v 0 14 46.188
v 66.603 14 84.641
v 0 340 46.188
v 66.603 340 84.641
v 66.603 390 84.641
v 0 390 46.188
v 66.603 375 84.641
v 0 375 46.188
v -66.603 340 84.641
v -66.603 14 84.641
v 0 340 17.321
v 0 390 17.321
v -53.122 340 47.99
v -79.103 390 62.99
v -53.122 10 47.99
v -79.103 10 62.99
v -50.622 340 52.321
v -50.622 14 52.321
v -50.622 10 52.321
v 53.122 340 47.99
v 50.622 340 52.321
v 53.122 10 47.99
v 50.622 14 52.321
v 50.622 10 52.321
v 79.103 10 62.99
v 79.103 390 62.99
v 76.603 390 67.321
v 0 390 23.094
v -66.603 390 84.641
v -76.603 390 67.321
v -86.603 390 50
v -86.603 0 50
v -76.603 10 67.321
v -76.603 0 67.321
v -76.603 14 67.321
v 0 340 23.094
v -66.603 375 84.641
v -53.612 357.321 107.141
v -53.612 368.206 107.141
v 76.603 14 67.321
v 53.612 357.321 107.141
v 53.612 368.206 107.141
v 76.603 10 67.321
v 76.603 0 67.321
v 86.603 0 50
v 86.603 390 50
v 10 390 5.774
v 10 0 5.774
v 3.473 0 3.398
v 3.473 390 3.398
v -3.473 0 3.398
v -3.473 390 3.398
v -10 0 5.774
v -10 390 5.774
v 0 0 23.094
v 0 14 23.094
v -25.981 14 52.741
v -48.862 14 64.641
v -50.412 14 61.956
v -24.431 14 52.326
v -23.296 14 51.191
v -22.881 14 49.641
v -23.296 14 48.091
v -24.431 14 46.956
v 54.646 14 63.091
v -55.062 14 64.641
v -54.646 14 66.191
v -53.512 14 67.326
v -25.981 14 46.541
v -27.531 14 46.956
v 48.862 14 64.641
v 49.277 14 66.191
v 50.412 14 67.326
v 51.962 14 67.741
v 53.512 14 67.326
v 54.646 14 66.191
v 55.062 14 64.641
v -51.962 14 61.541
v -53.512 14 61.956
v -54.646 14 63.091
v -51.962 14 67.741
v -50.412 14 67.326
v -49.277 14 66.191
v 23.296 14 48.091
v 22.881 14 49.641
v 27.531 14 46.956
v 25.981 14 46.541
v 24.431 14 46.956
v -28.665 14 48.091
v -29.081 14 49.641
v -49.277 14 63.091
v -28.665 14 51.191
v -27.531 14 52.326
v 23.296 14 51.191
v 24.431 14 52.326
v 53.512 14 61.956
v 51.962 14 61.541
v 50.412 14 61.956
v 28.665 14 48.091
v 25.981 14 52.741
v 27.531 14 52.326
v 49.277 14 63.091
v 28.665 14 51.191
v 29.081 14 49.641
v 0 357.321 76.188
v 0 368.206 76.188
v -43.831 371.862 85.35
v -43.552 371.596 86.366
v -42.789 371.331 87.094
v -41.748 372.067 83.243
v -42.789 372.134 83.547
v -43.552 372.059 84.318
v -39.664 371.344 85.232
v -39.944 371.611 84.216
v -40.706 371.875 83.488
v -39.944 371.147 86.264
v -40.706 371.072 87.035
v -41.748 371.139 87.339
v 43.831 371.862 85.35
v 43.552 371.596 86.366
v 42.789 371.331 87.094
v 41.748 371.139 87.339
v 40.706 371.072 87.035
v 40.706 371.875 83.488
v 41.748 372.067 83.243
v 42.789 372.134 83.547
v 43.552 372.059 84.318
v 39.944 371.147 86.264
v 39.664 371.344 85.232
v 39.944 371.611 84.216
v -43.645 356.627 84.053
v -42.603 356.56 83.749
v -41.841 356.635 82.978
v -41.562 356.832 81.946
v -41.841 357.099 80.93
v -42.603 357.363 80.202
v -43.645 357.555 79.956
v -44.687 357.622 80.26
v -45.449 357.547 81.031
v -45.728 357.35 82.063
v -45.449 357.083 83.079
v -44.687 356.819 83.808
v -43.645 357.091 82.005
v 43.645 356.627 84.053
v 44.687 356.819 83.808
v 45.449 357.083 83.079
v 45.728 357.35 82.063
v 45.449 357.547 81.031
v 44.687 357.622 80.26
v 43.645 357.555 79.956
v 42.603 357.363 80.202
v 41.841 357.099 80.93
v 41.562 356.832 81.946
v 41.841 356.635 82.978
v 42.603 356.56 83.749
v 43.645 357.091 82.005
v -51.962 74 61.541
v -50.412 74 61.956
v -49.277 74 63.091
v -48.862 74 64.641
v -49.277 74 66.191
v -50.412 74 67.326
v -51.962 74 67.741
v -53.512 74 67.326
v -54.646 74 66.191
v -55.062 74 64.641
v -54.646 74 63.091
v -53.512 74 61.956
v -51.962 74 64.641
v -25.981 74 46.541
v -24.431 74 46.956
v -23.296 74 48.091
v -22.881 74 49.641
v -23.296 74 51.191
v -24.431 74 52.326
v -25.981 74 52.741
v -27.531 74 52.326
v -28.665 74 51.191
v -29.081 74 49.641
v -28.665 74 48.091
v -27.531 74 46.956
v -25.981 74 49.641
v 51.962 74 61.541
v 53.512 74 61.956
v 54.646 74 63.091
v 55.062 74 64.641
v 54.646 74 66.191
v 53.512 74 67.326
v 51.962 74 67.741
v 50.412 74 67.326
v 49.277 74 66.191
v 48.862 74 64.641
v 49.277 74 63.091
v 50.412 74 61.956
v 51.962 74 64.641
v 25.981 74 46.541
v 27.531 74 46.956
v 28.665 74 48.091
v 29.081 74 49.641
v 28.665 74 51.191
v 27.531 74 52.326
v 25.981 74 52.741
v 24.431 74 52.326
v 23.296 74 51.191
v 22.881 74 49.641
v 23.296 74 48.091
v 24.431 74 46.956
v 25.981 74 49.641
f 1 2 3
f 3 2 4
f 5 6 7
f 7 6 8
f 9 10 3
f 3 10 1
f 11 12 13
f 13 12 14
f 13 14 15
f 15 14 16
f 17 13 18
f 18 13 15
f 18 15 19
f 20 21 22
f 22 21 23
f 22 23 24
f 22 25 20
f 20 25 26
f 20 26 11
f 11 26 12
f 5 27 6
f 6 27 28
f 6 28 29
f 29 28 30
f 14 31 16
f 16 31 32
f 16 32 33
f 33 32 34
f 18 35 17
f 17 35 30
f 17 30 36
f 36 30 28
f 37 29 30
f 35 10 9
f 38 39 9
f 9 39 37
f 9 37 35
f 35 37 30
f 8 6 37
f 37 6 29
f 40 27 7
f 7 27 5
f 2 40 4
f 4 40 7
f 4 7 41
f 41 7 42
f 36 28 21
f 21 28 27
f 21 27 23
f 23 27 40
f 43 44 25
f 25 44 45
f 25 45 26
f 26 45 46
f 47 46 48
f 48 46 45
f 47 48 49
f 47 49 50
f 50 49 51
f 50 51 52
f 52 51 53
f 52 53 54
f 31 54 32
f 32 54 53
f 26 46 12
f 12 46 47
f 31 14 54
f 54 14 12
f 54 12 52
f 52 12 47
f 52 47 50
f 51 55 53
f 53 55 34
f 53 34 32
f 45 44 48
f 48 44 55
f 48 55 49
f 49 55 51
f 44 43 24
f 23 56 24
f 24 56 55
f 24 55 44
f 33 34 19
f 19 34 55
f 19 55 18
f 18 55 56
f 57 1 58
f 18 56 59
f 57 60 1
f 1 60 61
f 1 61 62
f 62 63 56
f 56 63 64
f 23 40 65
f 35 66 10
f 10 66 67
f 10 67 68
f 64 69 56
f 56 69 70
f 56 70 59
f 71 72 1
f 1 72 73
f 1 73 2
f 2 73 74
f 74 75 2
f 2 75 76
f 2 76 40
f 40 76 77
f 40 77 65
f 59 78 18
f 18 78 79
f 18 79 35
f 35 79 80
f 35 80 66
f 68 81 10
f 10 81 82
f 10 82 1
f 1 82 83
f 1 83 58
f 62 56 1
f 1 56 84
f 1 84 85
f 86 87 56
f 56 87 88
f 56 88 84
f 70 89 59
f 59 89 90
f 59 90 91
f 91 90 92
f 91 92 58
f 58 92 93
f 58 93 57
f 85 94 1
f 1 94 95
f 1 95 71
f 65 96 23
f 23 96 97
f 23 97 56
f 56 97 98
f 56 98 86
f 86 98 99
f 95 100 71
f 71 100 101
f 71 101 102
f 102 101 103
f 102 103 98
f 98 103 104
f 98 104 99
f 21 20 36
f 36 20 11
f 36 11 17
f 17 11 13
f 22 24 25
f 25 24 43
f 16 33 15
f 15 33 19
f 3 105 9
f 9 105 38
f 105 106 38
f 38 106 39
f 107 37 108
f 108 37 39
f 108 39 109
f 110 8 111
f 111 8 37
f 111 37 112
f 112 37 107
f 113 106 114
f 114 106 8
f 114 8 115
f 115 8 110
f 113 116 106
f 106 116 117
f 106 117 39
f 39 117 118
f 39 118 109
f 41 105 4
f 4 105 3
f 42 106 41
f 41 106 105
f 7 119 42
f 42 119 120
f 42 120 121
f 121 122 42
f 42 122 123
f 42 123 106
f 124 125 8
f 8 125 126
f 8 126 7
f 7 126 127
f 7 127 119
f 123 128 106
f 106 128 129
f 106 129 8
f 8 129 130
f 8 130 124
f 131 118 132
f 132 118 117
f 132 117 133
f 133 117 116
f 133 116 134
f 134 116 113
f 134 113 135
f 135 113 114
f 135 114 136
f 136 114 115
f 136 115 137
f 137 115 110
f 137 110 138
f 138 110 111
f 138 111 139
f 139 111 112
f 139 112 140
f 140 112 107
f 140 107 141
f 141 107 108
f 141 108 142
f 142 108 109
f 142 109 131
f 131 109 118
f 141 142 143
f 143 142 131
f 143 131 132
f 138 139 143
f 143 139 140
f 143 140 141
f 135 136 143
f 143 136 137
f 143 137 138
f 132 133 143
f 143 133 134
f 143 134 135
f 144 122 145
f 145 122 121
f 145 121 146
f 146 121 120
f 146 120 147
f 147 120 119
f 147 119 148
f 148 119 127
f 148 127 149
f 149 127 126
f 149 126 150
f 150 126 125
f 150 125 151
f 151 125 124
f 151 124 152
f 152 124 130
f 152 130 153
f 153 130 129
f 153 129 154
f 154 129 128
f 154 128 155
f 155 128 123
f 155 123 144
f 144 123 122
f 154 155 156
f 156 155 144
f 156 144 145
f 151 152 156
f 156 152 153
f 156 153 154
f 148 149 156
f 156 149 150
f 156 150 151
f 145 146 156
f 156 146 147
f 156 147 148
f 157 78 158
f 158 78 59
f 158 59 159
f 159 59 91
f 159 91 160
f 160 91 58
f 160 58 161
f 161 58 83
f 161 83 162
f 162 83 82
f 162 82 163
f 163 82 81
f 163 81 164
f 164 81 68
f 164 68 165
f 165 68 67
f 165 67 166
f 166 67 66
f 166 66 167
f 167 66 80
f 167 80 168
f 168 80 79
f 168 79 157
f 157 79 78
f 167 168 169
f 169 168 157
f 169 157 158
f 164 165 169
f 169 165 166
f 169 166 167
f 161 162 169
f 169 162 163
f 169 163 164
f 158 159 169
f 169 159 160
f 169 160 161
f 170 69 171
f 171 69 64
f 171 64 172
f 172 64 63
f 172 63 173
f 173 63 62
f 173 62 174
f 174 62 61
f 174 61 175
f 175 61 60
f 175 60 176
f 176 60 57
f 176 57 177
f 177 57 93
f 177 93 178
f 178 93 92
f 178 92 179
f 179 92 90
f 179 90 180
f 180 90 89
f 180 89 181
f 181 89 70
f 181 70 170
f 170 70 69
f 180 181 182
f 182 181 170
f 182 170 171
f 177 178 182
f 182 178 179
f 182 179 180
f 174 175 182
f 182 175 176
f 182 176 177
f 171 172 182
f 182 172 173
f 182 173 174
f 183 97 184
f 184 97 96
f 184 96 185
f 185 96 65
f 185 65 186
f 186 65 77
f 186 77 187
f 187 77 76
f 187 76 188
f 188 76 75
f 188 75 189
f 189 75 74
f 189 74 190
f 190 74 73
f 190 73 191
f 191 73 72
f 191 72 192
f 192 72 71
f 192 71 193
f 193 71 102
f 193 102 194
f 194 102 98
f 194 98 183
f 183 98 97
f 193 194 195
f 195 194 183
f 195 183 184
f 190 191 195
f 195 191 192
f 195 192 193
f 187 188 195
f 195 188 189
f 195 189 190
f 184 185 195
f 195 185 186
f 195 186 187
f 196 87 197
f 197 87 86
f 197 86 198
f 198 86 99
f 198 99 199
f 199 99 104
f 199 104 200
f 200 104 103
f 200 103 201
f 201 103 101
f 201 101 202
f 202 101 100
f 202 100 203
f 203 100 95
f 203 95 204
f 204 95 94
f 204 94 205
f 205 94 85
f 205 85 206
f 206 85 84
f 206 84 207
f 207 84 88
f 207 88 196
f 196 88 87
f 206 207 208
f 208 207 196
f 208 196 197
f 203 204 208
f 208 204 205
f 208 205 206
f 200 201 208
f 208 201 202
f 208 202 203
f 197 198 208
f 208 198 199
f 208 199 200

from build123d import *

# Parameters (mm, degrees)
BOSS_EXTRUDE1_DEPTH = 390
CUT_EXTRUDE2_DEPTH  = 14
CUT_EXTRUDE3_DEPTH  = 50
BOSS_EXTRUDE2_DEPTH = 10
BOSS_EXTRUDE3_REACH = 473.852
BOSS_EXTRUDE4_REACH = 479.913
SKETCH22_R          = 2.1
CUT_EXTRUDE4_DEPTH  = 15
SKETCH23_R          = 3.1
CUT_EXTRUDE5_DEPTH  = 60


with BuildPart() as part:
    # Sketch1 → Boss-Extrude1 (new body)
    with BuildSketch(Plane(origin=(0, 0, 0), x_dir=(1, 0, 0), z_dir=(0, 1, 0))):
        with BuildLine():
            Line((-10, -5.773502692), (-86.602540378, -50))
            Line((-86.602540378, -50), (-79.102540378, -62.990381057))
            Line((-79.102540378, -62.990381057), (-53.121778265, -47.990381057))
            Line((-53.121778265, -47.990381057), (-50.621778265, -52.320508076))
            Line((-50.621778265, -52.320508076), (-76.602540378, -67.320508076))
            Line((-76.602540378, -67.320508076), (-66.602540378, -84.641016151))
            Line((-66.602540378, -84.641016151), (0, -46.188021535))
            Line((0, -46.188021535), (66.602540378, -84.641016151))
            Line((66.602540378, -84.641016151), (76.602540378, -67.320508076))
            Line((76.602540378, -67.320508076), (50.621778265, -52.320508076))
            Line((50.621778265, -52.320508076), (53.121778265, -47.990381057))
            Line((53.121778265, -47.990381057), (79.102540378, -62.990381057))
            Line((79.102540378, -62.990381057), (86.602540378, -50))
            Line((86.602540378, -50), (10, -5.773502692))
            ThreePointArc((10, -5.773502692), (0, -3.094010768), (-10, -5.773502692))
        make_face()
    extrude(amount=BOSS_EXTRUDE1_DEPTH)

    # Sketch18 → Cut-Extrude2 (cut)
    with BuildSketch(Plane.XZ):
        Polygon((-76.602540378, 67.320508076), (0, 23.094010768), (76.602540378, 67.320508076), (66.602540378, 84.641016151), (0, 46.188021535), (-66.602540378, 84.641016151), align=None)
    extrude(amount=-CUT_EXTRUDE2_DEPTH, mode=Mode.SUBTRACT)

    # Sketch19 → Cut-Extrude3 (cut)
    with BuildSketch(Plane(origin=(0, 390, 0), x_dir=(1, 0, 0), z_dir=(0, 1, 0))):
        Polygon((76.602540378, -67.320508076), (0, -23.094010768), (-76.602540378, -67.320508076), (-79.102540378, -62.990381057), (0, -17.320508076), (79.102540378, -62.990381057), align=None)
    extrude(amount=-CUT_EXTRUDE3_DEPTH, mode=Mode.SUBTRACT)

    # Sketch20 → Boss-Extrude2 (add)
    with BuildSketch(Plane.XZ):
        Polygon((76.602540378, 67.320508076), (50.621778265, 52.320508076), (53.121778265, 47.990381057), (79.102540378, 62.990381057), align=None)
        Polygon((-50.621778265, 52.320508076), (-76.602540378, 67.320508076), (-79.102540378, 62.990381057), (-53.121778265, 47.990381057), align=None)
    extrude(amount=-BOSS_EXTRUDE2_DEPTH)

    # Boss-Extrude3: up to this plane
    boss_extrude3_end = Plane(origin=(-86.602540378, 390, 50), z_dir=(0.8660254037844359, 0, -0.5000000000000048))
    # Sketch21 → Boss-Extrude3 (add, up to the surface)
    with BuildSketch(Plane(origin=(0, 0, 0), x_dir=(0, 0, -1), z_dir=(1, 0, 0)), mode=Mode.PRIVATE) as boss_extrude3_sk1:
        Polygon((-46.188021535, 375), (-76.188021535, 368.206188758), (-76.188021535, 357.320508076), (-46.188021535, 340), align=None)
    boss_extrude3_tool1 = split(extrude(boss_extrude3_sk1.sketch, amount=BOSS_EXTRUDE3_REACH, dir=(-0.866025403784, 0, 0.5), mode=Mode.PRIVATE), bisect_by=boss_extrude3_end, keep=Keep.BOTH, mode=Mode.PRIVATE)
    add(boss_extrude3_tool1.solids().sort_by_distance((0, 359.670666, 58.56037))[0])

    # Boss-Extrude4: up to this plane
    boss_extrude4_end = Plane(origin=(76.602540378, 390, 67.320508076), z_dir=(-0.8660254037844398, 0, -0.49999999999999795))
    # Sketch21<2> → Boss-Extrude4 (add, up to the surface)
    with BuildSketch(Plane(origin=(0, 0, 0), x_dir=(0, 0, -1), z_dir=(1, 0, 0)), mode=Mode.PRIVATE) as boss_extrude4_sk1:
        Polygon((-46.188021535, 375), (-76.188021535, 368.206188758), (-76.188021535, 357.320508076), (-46.188021535, 340), align=None)
    boss_extrude4_tool1 = split(extrude(boss_extrude4_sk1.sketch, amount=BOSS_EXTRUDE4_REACH, dir=(0.866025403784, 0, 0.5), mode=Mode.PRIVATE), bisect_by=boss_extrude4_end, keep=Keep.BOTH, mode=Mode.PRIVATE)
    add(boss_extrude4_tool1.solids().sort_by_distance((0, 359.670666, 58.56037))[0])

    # Sketch22 → Cut-Extrude4 (cut)
    with BuildSketch(Plane(origin=(47.172106066, 360.789319124, 81.704484407), x_dir=(0.9919674102096397, -0.12336978823439819, -0.027938368473838716), z_dir=(0.12649370372465277, 0.9674695714450555, 0.21909352168866233))):
        with Locations((-89.639756751, -1.109544744)):
            Circle(SKETCH22_R)
    cut_extrude4 = extrude(amount=-CUT_EXTRUDE4_DEPTH, mode=Mode.SUBTRACT)

    # Mirror1: Cut-Extrude4 across plane
    add(cut_extrude4.mirror(Plane(origin=(0, 0, 0), x_dir=(0, 0, 1), z_dir=(1, 0, 0))), mode=Mode.SUBTRACT)

    # Sketch23 → Cut-Extrude5 (cut)
    with BuildSketch(Plane.XZ.offset(-14)):
        with Locations((-25.980762114, 49.641016151)):
            Circle(SKETCH23_R)
        with Locations((-51.961524227, 64.641016151)):
            Circle(SKETCH23_R)
    cut_extrude5 = extrude(amount=-CUT_EXTRUDE5_DEPTH, mode=Mode.SUBTRACT)

    # Mirror2: Cut-Extrude5 across plane
    add(cut_extrude5.mirror(Plane(origin=(0, 0, 0), x_dir=(0, 0, 1), z_dir=(1, 0, 0))), mode=Mode.SUBTRACT)


solid = part.part
